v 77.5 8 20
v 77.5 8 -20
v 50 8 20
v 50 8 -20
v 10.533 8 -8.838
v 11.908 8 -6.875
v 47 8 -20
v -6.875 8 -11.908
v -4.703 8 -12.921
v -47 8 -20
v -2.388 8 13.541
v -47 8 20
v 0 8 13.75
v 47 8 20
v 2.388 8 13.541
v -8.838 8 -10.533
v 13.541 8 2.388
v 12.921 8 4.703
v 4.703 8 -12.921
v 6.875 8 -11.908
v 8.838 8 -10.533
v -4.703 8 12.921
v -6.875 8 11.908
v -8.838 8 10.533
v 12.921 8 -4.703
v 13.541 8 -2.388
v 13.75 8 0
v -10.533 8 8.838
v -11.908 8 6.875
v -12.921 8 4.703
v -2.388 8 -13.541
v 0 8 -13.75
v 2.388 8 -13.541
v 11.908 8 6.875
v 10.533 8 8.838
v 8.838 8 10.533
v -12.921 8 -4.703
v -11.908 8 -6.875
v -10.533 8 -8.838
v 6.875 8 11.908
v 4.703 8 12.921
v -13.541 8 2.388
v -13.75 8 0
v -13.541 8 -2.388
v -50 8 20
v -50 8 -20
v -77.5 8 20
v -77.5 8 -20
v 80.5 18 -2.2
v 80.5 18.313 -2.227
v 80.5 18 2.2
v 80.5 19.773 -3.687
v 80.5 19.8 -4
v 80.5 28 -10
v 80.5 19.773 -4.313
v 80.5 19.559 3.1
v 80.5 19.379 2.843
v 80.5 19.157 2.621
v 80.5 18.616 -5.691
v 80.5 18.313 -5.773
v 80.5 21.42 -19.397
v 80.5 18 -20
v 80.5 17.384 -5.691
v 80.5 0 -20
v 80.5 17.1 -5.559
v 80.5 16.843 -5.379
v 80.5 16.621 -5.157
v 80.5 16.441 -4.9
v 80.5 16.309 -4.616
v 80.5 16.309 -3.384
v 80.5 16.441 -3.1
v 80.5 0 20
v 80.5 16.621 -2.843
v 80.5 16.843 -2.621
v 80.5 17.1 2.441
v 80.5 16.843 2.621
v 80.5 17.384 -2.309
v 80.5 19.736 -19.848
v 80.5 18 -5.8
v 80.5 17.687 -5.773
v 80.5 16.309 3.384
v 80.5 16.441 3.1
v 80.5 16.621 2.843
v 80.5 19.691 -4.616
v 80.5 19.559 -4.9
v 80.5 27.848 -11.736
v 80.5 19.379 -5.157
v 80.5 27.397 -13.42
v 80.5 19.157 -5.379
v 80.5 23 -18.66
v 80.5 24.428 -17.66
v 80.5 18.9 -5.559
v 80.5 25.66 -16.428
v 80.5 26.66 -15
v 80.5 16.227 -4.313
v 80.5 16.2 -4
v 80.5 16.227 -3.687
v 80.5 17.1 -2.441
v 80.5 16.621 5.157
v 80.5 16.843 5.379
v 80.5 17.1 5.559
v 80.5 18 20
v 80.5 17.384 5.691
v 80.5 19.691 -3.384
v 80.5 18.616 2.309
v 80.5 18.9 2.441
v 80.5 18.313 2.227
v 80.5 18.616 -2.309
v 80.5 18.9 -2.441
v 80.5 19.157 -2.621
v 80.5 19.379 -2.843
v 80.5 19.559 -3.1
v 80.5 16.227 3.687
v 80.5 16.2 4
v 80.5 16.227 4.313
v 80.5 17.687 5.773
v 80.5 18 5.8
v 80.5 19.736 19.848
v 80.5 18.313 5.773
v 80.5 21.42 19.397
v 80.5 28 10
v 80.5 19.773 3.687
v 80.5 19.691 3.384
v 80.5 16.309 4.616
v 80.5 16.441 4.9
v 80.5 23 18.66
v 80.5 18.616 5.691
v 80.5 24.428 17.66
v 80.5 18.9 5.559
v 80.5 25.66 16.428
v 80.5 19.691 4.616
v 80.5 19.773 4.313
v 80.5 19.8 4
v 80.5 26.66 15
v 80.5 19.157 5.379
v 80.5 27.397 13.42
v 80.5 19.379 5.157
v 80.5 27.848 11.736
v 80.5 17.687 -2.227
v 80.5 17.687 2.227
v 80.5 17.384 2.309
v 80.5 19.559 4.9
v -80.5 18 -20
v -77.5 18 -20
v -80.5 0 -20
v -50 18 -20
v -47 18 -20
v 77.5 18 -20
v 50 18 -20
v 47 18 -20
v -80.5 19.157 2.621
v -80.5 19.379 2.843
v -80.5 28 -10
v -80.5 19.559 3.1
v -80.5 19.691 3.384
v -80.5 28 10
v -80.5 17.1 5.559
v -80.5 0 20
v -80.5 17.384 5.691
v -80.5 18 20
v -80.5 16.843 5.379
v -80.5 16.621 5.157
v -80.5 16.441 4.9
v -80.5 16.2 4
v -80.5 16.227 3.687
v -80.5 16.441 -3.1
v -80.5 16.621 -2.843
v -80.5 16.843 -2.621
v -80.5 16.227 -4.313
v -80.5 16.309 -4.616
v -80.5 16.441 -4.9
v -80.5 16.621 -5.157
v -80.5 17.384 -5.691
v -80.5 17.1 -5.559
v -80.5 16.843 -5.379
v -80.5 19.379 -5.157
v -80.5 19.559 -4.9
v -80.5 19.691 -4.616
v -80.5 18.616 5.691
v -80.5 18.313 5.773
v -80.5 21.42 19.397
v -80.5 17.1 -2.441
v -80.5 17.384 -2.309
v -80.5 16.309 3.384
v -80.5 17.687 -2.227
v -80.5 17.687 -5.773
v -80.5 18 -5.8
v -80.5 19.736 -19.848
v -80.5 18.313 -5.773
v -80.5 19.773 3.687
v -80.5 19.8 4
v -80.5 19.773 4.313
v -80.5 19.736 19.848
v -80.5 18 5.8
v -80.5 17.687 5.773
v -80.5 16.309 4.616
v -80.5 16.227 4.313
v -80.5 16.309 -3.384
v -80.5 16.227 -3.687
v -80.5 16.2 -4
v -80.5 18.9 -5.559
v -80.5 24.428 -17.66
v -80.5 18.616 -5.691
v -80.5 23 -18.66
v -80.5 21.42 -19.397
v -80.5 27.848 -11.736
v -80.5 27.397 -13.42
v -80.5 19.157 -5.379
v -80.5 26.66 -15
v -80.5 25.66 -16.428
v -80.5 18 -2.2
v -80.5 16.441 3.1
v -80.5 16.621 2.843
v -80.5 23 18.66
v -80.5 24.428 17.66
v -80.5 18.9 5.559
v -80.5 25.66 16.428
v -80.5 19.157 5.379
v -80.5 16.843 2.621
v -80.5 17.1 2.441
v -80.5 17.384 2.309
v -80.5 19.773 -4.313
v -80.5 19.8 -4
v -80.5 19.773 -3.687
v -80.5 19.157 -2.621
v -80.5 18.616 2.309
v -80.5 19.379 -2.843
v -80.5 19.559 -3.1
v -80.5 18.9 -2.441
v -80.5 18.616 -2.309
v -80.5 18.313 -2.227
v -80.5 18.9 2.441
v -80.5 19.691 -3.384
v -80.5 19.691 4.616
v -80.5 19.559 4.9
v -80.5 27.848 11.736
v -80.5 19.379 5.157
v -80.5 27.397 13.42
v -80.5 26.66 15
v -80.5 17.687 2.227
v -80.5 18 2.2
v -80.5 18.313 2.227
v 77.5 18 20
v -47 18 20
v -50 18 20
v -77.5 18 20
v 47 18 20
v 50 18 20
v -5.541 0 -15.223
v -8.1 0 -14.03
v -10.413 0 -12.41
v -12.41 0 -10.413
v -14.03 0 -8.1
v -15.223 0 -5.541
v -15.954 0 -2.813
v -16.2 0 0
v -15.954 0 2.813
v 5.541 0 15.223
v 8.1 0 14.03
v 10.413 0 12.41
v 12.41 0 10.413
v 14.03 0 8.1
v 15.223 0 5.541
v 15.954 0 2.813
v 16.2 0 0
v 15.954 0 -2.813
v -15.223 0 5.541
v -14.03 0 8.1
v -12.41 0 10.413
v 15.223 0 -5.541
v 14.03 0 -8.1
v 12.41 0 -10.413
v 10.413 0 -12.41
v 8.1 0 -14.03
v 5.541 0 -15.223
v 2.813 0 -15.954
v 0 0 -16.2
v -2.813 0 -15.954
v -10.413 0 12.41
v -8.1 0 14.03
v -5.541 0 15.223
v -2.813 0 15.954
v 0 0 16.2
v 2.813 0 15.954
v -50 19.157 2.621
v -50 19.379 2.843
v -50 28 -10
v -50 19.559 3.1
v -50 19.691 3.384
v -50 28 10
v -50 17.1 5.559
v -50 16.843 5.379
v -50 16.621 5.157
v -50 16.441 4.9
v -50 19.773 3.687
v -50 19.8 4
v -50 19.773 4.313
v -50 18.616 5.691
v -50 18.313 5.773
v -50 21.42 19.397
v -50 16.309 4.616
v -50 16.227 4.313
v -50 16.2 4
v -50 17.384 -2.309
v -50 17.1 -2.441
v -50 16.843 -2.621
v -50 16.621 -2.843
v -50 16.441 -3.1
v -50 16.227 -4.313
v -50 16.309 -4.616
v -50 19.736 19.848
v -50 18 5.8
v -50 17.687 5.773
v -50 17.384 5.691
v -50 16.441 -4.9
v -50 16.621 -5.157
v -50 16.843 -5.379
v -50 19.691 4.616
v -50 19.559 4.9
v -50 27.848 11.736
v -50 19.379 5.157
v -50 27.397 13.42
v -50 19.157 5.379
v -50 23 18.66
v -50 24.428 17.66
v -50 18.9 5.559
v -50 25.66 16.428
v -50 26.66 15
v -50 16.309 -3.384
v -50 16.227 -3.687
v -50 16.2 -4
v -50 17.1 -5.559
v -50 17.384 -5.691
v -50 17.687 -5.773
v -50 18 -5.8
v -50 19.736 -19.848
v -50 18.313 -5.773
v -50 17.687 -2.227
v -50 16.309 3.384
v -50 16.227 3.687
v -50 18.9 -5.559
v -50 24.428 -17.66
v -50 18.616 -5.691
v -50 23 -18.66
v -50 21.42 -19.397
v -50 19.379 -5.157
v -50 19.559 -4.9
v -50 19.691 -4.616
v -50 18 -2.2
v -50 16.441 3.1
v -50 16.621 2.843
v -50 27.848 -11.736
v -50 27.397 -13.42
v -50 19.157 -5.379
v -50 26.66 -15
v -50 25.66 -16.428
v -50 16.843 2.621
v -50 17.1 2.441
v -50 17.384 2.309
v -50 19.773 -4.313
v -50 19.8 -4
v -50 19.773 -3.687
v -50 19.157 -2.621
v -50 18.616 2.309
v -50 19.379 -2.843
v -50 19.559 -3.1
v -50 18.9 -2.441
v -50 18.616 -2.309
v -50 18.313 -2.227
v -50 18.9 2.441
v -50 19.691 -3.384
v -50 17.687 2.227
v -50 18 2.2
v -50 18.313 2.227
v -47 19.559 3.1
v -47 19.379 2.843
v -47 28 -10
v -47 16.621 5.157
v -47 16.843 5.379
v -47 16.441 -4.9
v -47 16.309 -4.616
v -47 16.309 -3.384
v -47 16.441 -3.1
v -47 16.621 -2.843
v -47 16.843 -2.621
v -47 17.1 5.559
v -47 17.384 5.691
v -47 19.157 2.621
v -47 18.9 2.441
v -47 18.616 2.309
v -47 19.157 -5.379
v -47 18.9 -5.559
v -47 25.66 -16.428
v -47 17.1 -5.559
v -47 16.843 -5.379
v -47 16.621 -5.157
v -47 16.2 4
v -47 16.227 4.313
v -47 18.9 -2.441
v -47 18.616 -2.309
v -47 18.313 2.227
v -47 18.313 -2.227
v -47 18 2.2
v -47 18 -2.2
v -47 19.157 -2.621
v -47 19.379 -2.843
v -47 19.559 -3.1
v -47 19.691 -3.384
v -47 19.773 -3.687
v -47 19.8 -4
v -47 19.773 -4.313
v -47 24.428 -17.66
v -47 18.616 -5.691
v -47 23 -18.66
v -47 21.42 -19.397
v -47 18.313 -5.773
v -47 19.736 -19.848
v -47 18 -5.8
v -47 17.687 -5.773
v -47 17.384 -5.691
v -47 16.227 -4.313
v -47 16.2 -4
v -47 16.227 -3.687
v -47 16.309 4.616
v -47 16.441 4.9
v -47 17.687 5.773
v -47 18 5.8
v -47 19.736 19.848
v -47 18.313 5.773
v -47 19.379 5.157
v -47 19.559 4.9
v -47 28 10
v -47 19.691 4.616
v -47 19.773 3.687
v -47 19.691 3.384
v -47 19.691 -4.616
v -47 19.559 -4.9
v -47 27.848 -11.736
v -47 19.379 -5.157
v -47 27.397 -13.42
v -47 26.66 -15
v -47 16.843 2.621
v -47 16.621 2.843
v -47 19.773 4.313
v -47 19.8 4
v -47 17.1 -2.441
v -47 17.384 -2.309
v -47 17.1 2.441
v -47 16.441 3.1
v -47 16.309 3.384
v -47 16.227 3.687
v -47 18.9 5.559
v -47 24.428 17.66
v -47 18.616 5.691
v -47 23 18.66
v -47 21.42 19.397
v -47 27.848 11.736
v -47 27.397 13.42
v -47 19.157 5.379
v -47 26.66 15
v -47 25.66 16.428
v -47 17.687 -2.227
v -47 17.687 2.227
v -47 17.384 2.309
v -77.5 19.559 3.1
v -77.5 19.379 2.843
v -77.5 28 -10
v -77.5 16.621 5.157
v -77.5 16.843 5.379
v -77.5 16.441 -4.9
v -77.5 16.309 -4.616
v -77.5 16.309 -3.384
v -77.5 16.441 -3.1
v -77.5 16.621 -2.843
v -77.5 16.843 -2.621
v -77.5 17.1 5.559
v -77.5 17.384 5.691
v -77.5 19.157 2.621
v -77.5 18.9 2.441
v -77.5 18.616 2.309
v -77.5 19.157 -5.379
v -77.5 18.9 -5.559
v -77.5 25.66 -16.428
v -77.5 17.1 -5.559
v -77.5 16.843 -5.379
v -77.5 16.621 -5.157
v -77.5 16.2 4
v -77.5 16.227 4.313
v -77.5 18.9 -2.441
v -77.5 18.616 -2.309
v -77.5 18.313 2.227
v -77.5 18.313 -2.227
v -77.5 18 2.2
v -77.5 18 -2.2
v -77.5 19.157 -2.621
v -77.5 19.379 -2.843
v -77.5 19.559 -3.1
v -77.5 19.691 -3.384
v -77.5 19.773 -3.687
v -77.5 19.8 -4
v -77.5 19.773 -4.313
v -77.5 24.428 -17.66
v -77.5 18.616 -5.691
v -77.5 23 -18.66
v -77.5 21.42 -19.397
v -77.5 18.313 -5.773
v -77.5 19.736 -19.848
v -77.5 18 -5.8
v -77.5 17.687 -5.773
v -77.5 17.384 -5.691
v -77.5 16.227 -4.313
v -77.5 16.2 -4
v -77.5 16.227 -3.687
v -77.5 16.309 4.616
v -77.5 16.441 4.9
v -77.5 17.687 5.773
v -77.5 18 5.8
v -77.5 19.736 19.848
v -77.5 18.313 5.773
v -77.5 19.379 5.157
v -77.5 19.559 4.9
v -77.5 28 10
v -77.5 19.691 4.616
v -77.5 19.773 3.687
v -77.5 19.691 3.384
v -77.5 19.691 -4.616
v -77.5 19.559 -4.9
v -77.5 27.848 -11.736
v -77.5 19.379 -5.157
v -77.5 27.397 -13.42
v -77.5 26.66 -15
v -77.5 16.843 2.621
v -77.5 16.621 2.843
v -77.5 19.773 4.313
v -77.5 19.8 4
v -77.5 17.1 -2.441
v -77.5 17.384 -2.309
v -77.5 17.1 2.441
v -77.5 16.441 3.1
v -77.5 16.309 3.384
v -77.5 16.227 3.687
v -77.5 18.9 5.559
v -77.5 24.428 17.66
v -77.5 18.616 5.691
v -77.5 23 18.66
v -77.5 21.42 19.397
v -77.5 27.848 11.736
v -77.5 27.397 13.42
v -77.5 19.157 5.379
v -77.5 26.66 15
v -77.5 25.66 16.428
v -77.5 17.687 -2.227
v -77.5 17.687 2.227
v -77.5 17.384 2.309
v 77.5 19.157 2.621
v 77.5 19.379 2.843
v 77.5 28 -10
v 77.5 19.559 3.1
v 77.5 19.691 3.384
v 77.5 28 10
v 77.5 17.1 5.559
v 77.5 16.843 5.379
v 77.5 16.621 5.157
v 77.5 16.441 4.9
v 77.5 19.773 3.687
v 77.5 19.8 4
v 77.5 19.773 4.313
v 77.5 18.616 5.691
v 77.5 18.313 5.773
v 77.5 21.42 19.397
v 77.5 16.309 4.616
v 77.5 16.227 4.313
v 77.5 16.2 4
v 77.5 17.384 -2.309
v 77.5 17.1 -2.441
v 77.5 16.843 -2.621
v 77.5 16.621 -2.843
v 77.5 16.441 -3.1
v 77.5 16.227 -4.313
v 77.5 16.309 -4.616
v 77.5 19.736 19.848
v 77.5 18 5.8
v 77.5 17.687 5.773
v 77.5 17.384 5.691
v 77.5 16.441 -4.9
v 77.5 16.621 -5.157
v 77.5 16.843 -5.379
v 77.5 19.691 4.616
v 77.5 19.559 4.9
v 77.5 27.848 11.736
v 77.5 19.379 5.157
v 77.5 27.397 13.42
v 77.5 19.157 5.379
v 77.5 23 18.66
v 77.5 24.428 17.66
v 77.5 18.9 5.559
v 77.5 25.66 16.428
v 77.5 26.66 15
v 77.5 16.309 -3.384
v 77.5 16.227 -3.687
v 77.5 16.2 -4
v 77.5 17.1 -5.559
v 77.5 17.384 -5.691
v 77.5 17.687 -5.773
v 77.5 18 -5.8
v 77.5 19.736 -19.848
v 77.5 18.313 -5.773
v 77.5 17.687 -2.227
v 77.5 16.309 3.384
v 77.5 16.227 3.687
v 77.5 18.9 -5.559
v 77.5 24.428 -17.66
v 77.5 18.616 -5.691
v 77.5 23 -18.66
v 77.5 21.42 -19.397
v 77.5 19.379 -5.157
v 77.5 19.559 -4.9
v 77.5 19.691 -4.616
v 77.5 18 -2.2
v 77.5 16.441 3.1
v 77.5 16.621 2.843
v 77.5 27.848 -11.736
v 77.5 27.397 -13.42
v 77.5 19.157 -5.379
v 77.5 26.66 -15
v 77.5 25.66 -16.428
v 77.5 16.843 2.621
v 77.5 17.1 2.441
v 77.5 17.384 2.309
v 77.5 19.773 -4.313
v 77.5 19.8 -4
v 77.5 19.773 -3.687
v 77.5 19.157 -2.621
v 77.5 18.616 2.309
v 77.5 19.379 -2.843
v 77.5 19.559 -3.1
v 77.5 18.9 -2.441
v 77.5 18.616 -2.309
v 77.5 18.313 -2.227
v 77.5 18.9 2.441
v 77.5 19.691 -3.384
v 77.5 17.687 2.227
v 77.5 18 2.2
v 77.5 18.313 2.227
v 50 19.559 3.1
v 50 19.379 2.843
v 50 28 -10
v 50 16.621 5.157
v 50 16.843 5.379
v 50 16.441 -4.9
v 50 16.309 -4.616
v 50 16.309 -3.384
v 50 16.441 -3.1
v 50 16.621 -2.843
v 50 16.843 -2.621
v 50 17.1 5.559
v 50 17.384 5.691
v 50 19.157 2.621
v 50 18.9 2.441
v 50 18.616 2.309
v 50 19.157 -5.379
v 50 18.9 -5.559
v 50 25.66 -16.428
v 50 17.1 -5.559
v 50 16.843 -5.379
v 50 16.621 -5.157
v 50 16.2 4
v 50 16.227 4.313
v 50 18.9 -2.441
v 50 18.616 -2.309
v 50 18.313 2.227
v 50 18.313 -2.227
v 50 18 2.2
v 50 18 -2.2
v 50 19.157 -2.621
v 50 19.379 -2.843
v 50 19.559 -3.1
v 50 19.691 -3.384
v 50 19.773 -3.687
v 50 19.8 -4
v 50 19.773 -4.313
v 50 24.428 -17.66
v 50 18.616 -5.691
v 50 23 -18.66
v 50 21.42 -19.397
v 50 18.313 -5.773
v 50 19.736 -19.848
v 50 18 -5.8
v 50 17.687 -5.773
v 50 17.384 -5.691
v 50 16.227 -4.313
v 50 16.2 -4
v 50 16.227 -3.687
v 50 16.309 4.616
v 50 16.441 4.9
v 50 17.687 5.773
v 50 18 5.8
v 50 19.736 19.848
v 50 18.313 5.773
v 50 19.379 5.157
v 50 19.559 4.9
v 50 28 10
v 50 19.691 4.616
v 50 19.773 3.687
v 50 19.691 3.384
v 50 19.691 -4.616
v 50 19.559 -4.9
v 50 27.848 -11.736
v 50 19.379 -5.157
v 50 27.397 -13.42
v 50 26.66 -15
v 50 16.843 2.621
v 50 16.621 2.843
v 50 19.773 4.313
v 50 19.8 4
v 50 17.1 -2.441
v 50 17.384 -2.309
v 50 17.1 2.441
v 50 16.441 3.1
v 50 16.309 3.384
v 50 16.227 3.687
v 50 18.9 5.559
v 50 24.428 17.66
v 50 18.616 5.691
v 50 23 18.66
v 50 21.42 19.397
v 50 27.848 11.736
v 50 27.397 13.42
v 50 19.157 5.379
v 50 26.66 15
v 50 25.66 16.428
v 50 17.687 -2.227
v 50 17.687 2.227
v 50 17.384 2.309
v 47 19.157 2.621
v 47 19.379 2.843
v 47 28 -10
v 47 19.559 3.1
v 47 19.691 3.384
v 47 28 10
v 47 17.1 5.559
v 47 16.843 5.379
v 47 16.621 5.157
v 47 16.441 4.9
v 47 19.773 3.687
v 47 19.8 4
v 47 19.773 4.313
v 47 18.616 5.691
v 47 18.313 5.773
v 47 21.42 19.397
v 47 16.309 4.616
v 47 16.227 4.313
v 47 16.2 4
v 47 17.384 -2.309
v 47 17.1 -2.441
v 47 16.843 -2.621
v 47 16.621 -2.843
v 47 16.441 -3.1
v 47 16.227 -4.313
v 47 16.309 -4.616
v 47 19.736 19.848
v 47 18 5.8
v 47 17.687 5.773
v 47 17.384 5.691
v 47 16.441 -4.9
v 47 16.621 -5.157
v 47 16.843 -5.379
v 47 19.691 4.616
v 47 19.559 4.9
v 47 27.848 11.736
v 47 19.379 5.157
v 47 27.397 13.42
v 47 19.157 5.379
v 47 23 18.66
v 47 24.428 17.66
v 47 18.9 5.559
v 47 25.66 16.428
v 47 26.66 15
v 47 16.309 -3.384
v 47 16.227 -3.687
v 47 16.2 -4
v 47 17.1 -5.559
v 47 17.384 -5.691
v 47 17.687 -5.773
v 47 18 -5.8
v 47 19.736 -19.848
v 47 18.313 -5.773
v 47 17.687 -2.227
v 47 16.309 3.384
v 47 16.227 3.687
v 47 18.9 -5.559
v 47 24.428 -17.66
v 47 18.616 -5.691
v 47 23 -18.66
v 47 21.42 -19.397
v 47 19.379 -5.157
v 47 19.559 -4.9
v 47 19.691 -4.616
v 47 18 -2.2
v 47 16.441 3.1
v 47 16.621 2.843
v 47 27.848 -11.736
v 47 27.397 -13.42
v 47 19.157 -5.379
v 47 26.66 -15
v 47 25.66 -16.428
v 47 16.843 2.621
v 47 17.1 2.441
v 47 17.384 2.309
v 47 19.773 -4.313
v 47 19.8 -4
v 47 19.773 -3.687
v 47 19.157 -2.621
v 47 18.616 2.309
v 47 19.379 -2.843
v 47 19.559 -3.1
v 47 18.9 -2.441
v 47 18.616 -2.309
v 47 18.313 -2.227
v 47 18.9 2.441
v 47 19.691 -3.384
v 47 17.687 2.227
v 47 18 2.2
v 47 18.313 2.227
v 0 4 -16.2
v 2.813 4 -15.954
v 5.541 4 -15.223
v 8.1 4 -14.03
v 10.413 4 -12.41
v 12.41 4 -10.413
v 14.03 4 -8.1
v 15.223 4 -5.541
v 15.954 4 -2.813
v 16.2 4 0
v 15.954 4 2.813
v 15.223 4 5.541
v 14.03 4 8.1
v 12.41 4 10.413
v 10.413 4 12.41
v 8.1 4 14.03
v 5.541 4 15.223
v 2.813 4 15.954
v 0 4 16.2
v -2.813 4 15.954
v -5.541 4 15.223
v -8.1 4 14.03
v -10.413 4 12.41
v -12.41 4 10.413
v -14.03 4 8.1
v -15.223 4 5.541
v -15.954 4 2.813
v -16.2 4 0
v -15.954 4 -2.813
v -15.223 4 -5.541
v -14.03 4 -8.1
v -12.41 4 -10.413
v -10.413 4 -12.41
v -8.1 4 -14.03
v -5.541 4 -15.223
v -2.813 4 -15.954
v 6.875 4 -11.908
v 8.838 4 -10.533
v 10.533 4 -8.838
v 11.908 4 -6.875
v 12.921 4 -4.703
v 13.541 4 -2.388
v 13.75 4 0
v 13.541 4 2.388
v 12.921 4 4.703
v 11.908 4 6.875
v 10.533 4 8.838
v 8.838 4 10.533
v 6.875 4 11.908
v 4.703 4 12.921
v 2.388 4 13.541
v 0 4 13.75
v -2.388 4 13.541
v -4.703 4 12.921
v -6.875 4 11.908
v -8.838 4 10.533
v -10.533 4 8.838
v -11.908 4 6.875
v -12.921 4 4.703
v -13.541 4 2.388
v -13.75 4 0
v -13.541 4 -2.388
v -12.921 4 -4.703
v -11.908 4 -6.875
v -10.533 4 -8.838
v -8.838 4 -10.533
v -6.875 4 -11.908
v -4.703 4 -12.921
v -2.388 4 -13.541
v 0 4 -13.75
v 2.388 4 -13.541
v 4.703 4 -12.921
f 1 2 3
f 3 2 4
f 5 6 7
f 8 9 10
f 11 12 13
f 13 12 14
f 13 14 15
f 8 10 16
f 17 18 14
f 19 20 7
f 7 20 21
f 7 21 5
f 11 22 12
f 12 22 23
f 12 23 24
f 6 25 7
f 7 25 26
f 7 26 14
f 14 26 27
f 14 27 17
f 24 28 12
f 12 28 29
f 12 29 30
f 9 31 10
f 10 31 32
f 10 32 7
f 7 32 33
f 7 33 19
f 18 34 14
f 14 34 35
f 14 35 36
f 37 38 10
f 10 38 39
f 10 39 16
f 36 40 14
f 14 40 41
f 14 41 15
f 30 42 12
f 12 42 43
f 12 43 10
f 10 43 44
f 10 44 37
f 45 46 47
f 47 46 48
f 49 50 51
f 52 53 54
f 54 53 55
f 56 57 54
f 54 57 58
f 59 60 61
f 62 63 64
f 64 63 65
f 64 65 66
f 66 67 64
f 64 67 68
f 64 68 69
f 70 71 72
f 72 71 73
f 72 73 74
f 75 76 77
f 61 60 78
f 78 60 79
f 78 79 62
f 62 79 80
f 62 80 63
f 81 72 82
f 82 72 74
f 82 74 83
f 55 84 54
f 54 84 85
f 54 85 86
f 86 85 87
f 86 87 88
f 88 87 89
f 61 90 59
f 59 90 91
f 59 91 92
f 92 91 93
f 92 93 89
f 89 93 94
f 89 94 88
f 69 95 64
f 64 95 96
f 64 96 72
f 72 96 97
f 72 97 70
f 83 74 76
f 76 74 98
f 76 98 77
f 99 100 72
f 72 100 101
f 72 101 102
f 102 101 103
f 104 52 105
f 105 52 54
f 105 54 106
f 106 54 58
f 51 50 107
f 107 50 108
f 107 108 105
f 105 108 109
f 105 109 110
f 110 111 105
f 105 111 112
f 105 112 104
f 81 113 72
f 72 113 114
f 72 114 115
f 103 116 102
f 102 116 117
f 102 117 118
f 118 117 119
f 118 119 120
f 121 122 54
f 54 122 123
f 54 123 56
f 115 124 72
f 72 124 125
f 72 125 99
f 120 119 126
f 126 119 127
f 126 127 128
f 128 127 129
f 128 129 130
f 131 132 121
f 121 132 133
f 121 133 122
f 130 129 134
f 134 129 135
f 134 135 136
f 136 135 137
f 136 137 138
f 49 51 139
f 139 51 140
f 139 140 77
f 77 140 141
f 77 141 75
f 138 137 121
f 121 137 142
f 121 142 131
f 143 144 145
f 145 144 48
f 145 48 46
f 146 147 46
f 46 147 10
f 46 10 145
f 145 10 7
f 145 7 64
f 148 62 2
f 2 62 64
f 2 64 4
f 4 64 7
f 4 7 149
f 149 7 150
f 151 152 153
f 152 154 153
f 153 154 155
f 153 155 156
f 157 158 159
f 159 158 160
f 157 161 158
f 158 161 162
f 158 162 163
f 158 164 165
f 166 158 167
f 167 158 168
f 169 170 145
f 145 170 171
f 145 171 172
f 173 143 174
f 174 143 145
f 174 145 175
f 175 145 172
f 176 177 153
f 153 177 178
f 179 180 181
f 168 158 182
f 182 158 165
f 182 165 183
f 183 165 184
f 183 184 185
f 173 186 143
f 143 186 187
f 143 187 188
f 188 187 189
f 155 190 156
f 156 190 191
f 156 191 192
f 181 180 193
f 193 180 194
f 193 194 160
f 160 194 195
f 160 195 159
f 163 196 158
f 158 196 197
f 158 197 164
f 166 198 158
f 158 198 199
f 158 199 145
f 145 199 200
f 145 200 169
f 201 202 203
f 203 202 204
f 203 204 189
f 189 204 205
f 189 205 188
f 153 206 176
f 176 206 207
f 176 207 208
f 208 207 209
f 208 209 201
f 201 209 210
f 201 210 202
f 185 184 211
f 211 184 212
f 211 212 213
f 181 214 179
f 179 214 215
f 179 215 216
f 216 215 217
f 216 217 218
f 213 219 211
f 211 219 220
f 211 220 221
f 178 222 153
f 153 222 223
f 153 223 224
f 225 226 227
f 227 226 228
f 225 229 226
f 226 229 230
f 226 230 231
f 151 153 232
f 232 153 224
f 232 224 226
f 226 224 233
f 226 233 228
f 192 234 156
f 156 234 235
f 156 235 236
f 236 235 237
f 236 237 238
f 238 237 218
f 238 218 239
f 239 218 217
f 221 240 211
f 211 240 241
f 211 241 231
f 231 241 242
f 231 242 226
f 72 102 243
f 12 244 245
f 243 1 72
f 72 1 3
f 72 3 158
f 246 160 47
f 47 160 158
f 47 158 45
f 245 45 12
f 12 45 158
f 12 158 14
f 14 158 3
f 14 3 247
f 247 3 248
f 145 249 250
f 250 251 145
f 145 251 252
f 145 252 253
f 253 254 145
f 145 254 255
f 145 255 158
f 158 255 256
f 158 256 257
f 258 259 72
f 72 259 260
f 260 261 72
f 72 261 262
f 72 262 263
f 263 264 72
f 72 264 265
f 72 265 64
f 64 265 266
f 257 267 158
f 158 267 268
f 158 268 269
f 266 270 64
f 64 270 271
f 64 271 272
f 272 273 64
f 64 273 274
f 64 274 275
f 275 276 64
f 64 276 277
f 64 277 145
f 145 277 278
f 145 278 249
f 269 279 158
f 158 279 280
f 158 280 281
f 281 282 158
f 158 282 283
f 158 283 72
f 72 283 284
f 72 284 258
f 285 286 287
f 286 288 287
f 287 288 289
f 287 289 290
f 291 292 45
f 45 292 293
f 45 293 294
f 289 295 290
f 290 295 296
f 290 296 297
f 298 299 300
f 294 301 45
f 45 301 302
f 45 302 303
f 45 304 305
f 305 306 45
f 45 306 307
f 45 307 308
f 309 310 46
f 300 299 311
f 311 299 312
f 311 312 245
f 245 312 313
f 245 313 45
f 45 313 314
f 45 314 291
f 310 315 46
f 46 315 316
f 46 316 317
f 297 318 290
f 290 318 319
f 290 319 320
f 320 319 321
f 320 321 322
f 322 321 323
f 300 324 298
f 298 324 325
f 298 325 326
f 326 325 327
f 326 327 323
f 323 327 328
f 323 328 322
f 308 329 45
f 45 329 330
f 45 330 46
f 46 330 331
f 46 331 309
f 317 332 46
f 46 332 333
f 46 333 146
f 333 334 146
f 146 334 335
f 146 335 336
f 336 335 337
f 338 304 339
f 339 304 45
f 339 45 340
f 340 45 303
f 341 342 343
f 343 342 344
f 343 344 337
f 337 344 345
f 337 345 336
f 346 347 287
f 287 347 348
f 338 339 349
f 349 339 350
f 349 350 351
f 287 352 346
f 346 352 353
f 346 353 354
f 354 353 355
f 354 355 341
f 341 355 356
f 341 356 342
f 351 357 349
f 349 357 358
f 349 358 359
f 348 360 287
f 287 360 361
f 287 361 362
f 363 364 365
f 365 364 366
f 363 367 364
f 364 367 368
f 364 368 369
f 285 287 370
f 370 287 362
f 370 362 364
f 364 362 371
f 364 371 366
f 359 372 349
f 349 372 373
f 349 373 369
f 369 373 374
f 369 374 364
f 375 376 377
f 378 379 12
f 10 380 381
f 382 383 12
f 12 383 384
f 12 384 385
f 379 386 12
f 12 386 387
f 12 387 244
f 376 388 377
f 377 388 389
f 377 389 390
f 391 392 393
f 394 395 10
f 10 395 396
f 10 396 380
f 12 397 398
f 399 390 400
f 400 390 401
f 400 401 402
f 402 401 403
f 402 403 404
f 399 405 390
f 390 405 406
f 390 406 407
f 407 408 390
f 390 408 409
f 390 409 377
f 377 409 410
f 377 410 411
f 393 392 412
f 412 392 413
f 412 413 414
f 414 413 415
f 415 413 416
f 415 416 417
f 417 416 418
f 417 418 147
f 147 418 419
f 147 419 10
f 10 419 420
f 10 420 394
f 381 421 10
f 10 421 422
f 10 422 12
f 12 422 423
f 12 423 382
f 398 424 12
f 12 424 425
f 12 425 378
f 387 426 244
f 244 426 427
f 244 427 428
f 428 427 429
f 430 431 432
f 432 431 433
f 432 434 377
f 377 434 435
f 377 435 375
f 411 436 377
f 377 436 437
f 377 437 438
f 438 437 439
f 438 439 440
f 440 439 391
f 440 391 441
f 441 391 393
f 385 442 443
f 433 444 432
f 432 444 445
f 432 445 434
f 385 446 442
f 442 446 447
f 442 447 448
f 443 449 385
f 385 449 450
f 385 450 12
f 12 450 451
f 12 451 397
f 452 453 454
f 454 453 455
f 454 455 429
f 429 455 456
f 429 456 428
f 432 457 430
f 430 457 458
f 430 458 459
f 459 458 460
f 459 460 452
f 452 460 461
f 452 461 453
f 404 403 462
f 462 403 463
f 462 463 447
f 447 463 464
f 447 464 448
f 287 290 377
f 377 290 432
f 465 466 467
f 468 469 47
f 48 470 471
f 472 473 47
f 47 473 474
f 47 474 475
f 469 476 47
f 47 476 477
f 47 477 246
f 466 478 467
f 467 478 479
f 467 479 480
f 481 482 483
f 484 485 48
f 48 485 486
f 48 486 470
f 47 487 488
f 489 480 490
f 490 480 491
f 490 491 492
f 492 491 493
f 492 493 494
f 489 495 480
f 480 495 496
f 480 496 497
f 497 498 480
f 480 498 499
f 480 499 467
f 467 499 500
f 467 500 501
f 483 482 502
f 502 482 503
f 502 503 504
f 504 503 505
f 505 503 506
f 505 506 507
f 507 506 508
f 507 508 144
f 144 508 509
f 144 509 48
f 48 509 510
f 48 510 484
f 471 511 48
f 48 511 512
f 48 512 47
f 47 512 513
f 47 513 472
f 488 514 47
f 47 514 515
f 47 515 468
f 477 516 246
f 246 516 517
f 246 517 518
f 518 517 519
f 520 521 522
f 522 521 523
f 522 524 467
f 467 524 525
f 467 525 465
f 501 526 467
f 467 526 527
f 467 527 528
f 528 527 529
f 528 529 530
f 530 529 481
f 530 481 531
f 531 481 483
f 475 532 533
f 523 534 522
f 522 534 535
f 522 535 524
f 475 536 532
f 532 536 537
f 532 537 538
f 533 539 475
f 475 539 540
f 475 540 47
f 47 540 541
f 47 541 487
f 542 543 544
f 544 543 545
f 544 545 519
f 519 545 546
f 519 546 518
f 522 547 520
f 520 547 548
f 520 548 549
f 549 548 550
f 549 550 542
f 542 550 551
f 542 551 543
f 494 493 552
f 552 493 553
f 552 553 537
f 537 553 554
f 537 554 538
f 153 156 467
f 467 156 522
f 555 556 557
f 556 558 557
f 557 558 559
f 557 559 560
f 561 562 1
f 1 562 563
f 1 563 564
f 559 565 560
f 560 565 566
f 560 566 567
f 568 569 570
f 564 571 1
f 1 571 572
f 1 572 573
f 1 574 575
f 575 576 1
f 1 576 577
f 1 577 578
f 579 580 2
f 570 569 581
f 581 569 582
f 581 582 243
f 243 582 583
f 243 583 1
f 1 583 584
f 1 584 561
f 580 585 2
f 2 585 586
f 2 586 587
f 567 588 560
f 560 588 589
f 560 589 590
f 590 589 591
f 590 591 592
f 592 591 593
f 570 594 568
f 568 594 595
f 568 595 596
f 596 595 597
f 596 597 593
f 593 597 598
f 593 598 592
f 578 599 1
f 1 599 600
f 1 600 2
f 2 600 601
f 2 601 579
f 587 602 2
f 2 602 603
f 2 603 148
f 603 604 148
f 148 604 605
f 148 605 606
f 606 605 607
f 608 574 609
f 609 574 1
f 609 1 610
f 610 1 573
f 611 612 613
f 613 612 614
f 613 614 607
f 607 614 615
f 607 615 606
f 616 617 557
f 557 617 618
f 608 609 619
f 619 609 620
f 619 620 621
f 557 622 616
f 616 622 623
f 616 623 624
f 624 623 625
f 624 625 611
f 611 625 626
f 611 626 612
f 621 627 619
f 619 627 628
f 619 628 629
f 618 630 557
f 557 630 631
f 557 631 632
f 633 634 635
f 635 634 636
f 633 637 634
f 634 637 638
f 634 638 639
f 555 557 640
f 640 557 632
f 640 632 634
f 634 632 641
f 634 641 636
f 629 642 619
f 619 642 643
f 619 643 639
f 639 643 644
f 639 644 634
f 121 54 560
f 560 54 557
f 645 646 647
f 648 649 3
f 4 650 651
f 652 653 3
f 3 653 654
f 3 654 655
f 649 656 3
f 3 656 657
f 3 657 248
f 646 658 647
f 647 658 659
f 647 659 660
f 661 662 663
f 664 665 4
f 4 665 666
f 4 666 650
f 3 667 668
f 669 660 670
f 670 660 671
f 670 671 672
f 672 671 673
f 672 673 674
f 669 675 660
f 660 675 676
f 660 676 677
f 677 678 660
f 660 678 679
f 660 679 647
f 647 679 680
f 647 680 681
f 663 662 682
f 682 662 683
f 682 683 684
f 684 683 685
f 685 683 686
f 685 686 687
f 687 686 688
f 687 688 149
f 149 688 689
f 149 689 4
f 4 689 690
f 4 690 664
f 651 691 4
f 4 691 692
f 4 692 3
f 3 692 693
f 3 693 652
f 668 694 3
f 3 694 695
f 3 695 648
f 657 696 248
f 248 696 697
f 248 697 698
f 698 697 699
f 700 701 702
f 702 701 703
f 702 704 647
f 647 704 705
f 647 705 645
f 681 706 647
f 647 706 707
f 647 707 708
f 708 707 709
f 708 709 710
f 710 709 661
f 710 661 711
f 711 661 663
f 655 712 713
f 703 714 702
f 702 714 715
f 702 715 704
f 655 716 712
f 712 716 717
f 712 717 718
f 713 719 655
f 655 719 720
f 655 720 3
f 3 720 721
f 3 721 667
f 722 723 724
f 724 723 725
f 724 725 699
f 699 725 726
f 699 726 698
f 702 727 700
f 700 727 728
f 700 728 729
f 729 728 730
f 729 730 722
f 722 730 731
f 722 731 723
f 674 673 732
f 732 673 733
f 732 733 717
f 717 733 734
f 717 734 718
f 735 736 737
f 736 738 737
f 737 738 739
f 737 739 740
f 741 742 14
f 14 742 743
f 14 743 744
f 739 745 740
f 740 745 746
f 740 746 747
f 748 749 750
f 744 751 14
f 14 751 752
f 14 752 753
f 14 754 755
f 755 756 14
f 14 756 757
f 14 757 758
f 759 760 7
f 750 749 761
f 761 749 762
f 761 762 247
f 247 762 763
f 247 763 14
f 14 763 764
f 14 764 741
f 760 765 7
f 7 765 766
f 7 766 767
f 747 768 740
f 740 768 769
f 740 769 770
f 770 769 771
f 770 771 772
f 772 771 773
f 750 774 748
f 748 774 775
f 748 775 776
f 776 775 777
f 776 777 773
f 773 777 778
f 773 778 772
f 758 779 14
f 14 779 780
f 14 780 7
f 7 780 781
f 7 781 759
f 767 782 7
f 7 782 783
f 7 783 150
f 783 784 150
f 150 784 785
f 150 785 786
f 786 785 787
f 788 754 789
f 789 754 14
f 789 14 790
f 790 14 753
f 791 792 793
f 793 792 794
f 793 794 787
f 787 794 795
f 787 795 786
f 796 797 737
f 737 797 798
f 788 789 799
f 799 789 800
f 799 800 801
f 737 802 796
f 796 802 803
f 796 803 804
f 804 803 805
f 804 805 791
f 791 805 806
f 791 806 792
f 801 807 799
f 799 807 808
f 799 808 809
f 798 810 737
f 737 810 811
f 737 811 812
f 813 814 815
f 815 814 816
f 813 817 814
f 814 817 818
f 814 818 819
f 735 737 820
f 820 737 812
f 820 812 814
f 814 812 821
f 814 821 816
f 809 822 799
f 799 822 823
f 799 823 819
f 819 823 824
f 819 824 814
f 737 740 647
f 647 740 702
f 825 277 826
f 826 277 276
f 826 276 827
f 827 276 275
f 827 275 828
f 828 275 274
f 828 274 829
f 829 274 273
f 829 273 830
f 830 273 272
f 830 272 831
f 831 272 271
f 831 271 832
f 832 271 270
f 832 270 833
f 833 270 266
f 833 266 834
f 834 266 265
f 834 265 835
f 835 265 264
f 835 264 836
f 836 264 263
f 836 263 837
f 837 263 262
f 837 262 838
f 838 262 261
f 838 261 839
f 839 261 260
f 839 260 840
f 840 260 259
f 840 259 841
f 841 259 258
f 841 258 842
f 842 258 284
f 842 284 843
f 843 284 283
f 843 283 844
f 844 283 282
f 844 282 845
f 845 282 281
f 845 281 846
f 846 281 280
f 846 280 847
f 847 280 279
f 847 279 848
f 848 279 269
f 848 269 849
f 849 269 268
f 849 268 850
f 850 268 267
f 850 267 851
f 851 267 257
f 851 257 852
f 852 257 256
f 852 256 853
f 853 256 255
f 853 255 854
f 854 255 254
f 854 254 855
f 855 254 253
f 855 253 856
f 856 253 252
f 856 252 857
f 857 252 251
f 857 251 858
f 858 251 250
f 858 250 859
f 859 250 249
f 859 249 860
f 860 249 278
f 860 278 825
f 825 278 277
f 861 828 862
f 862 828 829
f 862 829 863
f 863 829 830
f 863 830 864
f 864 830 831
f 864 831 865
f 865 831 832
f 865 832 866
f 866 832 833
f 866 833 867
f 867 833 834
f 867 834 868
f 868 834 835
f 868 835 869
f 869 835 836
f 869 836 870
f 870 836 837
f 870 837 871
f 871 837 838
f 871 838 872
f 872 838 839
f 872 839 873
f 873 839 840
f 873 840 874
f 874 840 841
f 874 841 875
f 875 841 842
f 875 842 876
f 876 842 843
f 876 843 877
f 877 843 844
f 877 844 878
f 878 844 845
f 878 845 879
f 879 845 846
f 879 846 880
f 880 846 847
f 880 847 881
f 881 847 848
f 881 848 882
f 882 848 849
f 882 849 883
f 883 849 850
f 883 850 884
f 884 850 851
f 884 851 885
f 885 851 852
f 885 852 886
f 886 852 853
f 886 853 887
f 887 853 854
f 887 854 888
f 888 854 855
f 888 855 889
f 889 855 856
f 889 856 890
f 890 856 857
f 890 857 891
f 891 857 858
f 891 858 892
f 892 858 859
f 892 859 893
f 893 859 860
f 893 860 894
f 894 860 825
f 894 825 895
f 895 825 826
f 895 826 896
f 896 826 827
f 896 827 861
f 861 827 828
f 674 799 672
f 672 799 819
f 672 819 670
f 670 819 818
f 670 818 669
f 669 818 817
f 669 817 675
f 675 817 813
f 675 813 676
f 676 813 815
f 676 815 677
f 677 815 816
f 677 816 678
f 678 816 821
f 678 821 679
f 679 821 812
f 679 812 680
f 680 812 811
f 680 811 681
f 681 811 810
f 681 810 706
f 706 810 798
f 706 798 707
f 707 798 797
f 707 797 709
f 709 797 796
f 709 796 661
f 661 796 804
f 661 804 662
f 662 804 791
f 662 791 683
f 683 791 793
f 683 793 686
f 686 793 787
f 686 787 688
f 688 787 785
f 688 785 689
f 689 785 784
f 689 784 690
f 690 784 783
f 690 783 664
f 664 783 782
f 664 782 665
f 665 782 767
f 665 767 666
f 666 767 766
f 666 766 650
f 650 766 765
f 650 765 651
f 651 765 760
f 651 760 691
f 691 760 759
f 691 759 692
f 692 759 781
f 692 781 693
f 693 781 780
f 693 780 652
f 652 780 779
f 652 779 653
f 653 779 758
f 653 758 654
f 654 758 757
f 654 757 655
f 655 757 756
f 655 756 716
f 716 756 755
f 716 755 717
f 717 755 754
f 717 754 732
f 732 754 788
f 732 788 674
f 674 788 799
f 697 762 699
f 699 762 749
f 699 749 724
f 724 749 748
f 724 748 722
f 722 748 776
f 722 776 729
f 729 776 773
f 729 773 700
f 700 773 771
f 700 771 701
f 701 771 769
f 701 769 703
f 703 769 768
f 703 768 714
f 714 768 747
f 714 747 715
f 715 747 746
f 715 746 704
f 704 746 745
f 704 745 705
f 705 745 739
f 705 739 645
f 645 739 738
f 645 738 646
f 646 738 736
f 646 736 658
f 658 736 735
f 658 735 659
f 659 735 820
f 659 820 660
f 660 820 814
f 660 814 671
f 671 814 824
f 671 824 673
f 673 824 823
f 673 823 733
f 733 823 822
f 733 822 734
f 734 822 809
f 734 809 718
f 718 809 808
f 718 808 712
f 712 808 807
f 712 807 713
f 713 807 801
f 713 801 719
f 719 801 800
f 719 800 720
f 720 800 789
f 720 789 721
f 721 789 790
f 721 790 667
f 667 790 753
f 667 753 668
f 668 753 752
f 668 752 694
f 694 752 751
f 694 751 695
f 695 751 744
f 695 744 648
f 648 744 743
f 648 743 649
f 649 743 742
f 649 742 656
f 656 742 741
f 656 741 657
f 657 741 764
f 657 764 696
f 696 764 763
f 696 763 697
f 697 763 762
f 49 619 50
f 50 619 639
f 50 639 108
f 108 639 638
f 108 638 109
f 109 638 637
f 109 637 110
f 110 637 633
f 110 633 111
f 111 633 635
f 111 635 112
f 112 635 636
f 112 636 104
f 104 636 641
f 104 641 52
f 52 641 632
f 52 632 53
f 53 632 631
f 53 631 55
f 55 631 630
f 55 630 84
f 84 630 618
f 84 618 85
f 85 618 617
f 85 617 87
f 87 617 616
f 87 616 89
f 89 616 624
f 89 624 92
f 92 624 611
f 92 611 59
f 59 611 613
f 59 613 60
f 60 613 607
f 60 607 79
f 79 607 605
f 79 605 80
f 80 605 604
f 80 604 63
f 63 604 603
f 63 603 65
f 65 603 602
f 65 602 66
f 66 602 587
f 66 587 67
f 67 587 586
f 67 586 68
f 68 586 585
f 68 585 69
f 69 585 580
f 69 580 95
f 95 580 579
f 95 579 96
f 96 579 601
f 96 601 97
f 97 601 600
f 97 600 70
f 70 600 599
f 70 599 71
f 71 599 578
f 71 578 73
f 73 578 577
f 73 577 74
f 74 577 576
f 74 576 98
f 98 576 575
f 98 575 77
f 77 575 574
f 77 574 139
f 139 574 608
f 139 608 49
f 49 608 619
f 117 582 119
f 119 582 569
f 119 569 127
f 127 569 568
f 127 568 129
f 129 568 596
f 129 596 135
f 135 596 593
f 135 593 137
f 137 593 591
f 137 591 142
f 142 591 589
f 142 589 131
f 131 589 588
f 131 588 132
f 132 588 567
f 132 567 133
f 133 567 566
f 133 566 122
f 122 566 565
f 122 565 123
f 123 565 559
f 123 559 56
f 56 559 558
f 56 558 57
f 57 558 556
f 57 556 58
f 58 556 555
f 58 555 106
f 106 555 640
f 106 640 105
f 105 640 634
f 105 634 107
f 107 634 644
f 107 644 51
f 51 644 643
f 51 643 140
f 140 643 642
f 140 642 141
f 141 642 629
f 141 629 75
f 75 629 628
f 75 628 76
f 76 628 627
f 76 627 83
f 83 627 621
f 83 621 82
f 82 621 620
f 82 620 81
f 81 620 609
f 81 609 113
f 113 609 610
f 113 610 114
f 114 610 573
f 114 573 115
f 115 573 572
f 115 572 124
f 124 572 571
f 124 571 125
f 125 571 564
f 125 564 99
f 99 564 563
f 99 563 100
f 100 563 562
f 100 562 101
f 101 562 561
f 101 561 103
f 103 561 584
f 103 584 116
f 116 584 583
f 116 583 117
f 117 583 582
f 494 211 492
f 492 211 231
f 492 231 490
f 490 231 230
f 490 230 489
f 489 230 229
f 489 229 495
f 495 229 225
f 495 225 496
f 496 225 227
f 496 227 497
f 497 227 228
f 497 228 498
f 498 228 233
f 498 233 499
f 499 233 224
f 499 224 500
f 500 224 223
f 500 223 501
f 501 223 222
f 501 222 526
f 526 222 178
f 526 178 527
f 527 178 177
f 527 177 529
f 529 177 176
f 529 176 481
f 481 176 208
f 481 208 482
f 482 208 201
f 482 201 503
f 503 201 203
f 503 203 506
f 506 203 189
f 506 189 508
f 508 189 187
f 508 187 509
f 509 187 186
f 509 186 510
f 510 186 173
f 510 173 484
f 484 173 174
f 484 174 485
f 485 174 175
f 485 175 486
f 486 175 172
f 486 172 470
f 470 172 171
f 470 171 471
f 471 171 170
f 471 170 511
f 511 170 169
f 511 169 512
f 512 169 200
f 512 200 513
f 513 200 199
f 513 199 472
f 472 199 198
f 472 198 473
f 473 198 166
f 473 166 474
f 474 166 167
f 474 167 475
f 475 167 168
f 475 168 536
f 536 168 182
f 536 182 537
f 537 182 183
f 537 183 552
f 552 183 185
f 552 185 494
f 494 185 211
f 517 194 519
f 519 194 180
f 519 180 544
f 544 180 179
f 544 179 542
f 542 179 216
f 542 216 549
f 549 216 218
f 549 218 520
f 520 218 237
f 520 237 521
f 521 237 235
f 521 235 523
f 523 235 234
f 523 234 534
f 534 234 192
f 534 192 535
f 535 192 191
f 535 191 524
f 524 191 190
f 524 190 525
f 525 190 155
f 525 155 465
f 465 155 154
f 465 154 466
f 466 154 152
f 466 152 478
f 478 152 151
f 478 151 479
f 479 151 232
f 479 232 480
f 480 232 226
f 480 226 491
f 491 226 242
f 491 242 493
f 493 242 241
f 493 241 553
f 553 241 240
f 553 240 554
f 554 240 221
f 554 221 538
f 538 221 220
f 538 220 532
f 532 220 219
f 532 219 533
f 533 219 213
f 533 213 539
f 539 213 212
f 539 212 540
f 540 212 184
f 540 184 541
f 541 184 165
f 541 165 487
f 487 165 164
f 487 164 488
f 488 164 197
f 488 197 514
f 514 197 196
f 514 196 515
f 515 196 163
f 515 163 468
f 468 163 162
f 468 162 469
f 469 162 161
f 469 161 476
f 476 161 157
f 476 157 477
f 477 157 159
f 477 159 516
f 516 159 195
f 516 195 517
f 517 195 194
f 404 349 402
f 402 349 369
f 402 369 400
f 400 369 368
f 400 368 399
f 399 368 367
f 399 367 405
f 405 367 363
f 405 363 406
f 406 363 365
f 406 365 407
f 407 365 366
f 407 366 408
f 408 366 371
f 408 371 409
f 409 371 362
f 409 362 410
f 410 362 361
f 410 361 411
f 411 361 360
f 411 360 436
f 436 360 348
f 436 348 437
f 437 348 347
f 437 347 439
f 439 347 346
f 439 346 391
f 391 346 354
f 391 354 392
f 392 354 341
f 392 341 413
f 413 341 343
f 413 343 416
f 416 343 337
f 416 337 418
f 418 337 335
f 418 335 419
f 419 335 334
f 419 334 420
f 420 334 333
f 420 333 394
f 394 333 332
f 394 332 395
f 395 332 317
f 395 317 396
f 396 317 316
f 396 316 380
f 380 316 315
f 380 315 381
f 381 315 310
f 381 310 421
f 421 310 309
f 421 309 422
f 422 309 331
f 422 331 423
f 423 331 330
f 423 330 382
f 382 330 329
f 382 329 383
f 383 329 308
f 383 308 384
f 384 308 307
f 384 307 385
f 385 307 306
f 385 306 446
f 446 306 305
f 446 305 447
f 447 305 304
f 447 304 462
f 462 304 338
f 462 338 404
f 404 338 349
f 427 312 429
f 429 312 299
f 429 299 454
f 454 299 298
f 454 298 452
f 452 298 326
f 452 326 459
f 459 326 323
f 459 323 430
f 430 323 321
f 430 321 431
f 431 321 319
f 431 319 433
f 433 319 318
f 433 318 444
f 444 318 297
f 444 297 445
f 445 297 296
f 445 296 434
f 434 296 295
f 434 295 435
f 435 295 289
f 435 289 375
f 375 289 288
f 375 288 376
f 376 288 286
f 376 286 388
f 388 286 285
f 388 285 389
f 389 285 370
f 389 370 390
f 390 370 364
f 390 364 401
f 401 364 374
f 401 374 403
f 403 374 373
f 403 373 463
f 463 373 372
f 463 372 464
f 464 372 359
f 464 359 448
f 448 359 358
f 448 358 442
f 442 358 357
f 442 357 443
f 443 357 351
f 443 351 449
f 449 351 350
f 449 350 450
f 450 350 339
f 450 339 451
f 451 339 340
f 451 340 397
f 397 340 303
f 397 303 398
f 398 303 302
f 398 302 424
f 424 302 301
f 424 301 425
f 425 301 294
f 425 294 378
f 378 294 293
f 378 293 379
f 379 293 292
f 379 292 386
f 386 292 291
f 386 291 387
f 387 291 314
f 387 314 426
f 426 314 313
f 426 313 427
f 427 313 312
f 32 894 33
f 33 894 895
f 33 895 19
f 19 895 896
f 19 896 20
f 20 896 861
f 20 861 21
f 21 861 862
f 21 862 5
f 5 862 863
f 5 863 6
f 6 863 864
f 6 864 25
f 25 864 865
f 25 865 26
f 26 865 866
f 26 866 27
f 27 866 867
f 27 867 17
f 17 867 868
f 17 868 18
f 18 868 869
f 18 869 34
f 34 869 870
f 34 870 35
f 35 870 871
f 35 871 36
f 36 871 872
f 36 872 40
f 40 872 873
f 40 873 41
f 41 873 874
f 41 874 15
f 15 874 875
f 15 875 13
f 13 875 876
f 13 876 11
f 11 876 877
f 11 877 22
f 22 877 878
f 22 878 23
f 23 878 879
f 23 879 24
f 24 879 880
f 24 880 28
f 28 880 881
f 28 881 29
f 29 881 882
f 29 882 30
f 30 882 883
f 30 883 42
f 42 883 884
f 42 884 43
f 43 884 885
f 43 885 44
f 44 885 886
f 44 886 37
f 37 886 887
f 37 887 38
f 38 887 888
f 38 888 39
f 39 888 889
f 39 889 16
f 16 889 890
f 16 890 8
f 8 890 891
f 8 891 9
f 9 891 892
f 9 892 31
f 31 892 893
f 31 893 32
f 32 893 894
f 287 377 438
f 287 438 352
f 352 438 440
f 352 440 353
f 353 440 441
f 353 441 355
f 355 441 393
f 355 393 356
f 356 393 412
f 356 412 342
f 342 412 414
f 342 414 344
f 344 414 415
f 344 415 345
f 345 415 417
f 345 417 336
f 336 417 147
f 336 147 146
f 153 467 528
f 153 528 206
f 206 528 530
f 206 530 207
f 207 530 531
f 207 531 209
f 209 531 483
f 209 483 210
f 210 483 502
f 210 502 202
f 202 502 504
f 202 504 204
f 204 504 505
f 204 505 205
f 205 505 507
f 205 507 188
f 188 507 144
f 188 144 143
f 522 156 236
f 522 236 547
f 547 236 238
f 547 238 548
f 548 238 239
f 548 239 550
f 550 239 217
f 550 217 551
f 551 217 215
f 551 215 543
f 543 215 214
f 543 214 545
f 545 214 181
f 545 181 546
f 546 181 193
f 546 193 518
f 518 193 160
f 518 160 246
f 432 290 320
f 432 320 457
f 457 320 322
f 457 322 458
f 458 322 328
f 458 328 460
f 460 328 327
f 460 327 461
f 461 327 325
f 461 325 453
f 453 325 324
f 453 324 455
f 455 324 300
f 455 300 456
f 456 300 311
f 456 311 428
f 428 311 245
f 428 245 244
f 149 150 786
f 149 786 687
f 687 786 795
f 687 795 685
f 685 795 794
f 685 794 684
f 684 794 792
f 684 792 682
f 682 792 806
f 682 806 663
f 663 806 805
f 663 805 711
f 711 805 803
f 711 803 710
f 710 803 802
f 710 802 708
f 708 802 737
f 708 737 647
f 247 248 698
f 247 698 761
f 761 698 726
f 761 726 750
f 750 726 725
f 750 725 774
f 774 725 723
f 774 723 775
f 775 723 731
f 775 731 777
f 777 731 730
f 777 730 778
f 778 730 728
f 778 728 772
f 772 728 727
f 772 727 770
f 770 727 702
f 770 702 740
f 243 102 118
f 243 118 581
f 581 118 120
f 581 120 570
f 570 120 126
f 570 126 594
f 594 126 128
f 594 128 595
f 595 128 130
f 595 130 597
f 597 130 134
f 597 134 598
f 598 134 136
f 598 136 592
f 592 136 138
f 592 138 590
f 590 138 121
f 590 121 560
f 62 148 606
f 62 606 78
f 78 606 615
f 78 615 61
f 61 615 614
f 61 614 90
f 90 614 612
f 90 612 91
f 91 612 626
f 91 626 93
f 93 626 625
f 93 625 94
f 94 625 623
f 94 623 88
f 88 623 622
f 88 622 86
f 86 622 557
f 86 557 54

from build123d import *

# Parameters (mm, degrees)
SKETCH1_W               = 161
SKETCH1_H               = 40
BOSS_EXTRUDE1_DEPTH     = 8
SKETCH2_W               = 3
SKETCH2_H               = 40
BOSS_EXTRUDE2_DEPTH     = 20
SKETCH3_R               = 16.2
CUT_EXTRUDE1_DEPTH      = 4
SKETCH4_R               = 1.8
CUT_EXTRUDE2_DEPTH      = 1
CUT_EXTRUDE2_DEPTH_BACK = 162
CUT_EXTRUDE3_REACH      = 26
SKETCH5_R               = 13.75
FILLET1_R               = 10


with BuildPart() as part:
    # Sketch1 → Boss-Extrude1 (new body)
    with BuildSketch(Plane(origin=(0, 0, 0), x_dir=(1, 0, 0), z_dir=(0, 1, 0))):
        Rectangle(SKETCH1_W, SKETCH1_H)
    extrude(amount=BOSS_EXTRUDE1_DEPTH)

    # Sketch2 → Boss-Extrude2 (add)
    with BuildSketch(Plane(origin=(0, 8, 0), x_dir=(1, 0, 0), z_dir=(0, 1, 0))):
        with Locations((-48.5, 0)):
            Rectangle(SKETCH2_W, SKETCH2_H)
        with Locations((-79, 0)):
            Rectangle(SKETCH2_W, SKETCH2_H)
        with Locations((79, 0)):
            Rectangle(SKETCH2_W, SKETCH2_H)
        with Locations((48.5, 0)):
            Rectangle(SKETCH2_W, SKETCH2_H)
    extrude(amount=BOSS_EXTRUDE2_DEPTH)

    # Sketch3 → Cut-Extrude1 (cut)
    with BuildSketch(Plane.XZ):
        Circle(SKETCH3_R)
    extrude(amount=-CUT_EXTRUDE1_DEPTH, mode=Mode.SUBTRACT)

    # Sketch4 → Cut-Extrude2 (cut, two sides)
    with BuildSketch(Plane.ZY.offset(80.5)) as cut_extrude2_sk:
        with Locations((4, 18)):
            Circle(SKETCH4_R)
        with Locations((-4, 18)):
            Circle(SKETCH4_R)
    extrude(amount=CUT_EXTRUDE2_DEPTH, mode=Mode.SUBTRACT)
    extrude(cut_extrude2_sk.sketch, amount=-CUT_EXTRUDE2_DEPTH_BACK, mode=Mode.SUBTRACT)

    # Sketch5 → Cut-Extrude3 (cut, up to next)
    with BuildSketch(Plane.XZ.offset(-4), mode=Mode.PRIVATE) as cut_extrude3_sk1:
        Circle(SKETCH5_R)
    cut_extrude3_tool1 = extrude(cut_extrude3_sk1.sketch, amount=-CUT_EXTRUDE3_REACH, mode=Mode.PRIVATE) & part.part
    add(cut_extrude3_tool1.solids().sort_by_distance((0, 4, 0))[0], mode=Mode.SUBTRACT)

    # Fillet1
    fillet1_edges = [part.edges().sort_by_distance(p)[0] for p in [
        (-48.5, 28, 20),
        (-48.5, 28, -20),
        (-79, 28, 20),
        (-79, 28, -20),
        (79, 28, -20),
        (79, 28, 20),
        (48.5, 28, -20),
        (48.5, 28, 20),
    ]]
    fillet(fillet1_edges, radius=FILLET1_R)


solid = part.part
